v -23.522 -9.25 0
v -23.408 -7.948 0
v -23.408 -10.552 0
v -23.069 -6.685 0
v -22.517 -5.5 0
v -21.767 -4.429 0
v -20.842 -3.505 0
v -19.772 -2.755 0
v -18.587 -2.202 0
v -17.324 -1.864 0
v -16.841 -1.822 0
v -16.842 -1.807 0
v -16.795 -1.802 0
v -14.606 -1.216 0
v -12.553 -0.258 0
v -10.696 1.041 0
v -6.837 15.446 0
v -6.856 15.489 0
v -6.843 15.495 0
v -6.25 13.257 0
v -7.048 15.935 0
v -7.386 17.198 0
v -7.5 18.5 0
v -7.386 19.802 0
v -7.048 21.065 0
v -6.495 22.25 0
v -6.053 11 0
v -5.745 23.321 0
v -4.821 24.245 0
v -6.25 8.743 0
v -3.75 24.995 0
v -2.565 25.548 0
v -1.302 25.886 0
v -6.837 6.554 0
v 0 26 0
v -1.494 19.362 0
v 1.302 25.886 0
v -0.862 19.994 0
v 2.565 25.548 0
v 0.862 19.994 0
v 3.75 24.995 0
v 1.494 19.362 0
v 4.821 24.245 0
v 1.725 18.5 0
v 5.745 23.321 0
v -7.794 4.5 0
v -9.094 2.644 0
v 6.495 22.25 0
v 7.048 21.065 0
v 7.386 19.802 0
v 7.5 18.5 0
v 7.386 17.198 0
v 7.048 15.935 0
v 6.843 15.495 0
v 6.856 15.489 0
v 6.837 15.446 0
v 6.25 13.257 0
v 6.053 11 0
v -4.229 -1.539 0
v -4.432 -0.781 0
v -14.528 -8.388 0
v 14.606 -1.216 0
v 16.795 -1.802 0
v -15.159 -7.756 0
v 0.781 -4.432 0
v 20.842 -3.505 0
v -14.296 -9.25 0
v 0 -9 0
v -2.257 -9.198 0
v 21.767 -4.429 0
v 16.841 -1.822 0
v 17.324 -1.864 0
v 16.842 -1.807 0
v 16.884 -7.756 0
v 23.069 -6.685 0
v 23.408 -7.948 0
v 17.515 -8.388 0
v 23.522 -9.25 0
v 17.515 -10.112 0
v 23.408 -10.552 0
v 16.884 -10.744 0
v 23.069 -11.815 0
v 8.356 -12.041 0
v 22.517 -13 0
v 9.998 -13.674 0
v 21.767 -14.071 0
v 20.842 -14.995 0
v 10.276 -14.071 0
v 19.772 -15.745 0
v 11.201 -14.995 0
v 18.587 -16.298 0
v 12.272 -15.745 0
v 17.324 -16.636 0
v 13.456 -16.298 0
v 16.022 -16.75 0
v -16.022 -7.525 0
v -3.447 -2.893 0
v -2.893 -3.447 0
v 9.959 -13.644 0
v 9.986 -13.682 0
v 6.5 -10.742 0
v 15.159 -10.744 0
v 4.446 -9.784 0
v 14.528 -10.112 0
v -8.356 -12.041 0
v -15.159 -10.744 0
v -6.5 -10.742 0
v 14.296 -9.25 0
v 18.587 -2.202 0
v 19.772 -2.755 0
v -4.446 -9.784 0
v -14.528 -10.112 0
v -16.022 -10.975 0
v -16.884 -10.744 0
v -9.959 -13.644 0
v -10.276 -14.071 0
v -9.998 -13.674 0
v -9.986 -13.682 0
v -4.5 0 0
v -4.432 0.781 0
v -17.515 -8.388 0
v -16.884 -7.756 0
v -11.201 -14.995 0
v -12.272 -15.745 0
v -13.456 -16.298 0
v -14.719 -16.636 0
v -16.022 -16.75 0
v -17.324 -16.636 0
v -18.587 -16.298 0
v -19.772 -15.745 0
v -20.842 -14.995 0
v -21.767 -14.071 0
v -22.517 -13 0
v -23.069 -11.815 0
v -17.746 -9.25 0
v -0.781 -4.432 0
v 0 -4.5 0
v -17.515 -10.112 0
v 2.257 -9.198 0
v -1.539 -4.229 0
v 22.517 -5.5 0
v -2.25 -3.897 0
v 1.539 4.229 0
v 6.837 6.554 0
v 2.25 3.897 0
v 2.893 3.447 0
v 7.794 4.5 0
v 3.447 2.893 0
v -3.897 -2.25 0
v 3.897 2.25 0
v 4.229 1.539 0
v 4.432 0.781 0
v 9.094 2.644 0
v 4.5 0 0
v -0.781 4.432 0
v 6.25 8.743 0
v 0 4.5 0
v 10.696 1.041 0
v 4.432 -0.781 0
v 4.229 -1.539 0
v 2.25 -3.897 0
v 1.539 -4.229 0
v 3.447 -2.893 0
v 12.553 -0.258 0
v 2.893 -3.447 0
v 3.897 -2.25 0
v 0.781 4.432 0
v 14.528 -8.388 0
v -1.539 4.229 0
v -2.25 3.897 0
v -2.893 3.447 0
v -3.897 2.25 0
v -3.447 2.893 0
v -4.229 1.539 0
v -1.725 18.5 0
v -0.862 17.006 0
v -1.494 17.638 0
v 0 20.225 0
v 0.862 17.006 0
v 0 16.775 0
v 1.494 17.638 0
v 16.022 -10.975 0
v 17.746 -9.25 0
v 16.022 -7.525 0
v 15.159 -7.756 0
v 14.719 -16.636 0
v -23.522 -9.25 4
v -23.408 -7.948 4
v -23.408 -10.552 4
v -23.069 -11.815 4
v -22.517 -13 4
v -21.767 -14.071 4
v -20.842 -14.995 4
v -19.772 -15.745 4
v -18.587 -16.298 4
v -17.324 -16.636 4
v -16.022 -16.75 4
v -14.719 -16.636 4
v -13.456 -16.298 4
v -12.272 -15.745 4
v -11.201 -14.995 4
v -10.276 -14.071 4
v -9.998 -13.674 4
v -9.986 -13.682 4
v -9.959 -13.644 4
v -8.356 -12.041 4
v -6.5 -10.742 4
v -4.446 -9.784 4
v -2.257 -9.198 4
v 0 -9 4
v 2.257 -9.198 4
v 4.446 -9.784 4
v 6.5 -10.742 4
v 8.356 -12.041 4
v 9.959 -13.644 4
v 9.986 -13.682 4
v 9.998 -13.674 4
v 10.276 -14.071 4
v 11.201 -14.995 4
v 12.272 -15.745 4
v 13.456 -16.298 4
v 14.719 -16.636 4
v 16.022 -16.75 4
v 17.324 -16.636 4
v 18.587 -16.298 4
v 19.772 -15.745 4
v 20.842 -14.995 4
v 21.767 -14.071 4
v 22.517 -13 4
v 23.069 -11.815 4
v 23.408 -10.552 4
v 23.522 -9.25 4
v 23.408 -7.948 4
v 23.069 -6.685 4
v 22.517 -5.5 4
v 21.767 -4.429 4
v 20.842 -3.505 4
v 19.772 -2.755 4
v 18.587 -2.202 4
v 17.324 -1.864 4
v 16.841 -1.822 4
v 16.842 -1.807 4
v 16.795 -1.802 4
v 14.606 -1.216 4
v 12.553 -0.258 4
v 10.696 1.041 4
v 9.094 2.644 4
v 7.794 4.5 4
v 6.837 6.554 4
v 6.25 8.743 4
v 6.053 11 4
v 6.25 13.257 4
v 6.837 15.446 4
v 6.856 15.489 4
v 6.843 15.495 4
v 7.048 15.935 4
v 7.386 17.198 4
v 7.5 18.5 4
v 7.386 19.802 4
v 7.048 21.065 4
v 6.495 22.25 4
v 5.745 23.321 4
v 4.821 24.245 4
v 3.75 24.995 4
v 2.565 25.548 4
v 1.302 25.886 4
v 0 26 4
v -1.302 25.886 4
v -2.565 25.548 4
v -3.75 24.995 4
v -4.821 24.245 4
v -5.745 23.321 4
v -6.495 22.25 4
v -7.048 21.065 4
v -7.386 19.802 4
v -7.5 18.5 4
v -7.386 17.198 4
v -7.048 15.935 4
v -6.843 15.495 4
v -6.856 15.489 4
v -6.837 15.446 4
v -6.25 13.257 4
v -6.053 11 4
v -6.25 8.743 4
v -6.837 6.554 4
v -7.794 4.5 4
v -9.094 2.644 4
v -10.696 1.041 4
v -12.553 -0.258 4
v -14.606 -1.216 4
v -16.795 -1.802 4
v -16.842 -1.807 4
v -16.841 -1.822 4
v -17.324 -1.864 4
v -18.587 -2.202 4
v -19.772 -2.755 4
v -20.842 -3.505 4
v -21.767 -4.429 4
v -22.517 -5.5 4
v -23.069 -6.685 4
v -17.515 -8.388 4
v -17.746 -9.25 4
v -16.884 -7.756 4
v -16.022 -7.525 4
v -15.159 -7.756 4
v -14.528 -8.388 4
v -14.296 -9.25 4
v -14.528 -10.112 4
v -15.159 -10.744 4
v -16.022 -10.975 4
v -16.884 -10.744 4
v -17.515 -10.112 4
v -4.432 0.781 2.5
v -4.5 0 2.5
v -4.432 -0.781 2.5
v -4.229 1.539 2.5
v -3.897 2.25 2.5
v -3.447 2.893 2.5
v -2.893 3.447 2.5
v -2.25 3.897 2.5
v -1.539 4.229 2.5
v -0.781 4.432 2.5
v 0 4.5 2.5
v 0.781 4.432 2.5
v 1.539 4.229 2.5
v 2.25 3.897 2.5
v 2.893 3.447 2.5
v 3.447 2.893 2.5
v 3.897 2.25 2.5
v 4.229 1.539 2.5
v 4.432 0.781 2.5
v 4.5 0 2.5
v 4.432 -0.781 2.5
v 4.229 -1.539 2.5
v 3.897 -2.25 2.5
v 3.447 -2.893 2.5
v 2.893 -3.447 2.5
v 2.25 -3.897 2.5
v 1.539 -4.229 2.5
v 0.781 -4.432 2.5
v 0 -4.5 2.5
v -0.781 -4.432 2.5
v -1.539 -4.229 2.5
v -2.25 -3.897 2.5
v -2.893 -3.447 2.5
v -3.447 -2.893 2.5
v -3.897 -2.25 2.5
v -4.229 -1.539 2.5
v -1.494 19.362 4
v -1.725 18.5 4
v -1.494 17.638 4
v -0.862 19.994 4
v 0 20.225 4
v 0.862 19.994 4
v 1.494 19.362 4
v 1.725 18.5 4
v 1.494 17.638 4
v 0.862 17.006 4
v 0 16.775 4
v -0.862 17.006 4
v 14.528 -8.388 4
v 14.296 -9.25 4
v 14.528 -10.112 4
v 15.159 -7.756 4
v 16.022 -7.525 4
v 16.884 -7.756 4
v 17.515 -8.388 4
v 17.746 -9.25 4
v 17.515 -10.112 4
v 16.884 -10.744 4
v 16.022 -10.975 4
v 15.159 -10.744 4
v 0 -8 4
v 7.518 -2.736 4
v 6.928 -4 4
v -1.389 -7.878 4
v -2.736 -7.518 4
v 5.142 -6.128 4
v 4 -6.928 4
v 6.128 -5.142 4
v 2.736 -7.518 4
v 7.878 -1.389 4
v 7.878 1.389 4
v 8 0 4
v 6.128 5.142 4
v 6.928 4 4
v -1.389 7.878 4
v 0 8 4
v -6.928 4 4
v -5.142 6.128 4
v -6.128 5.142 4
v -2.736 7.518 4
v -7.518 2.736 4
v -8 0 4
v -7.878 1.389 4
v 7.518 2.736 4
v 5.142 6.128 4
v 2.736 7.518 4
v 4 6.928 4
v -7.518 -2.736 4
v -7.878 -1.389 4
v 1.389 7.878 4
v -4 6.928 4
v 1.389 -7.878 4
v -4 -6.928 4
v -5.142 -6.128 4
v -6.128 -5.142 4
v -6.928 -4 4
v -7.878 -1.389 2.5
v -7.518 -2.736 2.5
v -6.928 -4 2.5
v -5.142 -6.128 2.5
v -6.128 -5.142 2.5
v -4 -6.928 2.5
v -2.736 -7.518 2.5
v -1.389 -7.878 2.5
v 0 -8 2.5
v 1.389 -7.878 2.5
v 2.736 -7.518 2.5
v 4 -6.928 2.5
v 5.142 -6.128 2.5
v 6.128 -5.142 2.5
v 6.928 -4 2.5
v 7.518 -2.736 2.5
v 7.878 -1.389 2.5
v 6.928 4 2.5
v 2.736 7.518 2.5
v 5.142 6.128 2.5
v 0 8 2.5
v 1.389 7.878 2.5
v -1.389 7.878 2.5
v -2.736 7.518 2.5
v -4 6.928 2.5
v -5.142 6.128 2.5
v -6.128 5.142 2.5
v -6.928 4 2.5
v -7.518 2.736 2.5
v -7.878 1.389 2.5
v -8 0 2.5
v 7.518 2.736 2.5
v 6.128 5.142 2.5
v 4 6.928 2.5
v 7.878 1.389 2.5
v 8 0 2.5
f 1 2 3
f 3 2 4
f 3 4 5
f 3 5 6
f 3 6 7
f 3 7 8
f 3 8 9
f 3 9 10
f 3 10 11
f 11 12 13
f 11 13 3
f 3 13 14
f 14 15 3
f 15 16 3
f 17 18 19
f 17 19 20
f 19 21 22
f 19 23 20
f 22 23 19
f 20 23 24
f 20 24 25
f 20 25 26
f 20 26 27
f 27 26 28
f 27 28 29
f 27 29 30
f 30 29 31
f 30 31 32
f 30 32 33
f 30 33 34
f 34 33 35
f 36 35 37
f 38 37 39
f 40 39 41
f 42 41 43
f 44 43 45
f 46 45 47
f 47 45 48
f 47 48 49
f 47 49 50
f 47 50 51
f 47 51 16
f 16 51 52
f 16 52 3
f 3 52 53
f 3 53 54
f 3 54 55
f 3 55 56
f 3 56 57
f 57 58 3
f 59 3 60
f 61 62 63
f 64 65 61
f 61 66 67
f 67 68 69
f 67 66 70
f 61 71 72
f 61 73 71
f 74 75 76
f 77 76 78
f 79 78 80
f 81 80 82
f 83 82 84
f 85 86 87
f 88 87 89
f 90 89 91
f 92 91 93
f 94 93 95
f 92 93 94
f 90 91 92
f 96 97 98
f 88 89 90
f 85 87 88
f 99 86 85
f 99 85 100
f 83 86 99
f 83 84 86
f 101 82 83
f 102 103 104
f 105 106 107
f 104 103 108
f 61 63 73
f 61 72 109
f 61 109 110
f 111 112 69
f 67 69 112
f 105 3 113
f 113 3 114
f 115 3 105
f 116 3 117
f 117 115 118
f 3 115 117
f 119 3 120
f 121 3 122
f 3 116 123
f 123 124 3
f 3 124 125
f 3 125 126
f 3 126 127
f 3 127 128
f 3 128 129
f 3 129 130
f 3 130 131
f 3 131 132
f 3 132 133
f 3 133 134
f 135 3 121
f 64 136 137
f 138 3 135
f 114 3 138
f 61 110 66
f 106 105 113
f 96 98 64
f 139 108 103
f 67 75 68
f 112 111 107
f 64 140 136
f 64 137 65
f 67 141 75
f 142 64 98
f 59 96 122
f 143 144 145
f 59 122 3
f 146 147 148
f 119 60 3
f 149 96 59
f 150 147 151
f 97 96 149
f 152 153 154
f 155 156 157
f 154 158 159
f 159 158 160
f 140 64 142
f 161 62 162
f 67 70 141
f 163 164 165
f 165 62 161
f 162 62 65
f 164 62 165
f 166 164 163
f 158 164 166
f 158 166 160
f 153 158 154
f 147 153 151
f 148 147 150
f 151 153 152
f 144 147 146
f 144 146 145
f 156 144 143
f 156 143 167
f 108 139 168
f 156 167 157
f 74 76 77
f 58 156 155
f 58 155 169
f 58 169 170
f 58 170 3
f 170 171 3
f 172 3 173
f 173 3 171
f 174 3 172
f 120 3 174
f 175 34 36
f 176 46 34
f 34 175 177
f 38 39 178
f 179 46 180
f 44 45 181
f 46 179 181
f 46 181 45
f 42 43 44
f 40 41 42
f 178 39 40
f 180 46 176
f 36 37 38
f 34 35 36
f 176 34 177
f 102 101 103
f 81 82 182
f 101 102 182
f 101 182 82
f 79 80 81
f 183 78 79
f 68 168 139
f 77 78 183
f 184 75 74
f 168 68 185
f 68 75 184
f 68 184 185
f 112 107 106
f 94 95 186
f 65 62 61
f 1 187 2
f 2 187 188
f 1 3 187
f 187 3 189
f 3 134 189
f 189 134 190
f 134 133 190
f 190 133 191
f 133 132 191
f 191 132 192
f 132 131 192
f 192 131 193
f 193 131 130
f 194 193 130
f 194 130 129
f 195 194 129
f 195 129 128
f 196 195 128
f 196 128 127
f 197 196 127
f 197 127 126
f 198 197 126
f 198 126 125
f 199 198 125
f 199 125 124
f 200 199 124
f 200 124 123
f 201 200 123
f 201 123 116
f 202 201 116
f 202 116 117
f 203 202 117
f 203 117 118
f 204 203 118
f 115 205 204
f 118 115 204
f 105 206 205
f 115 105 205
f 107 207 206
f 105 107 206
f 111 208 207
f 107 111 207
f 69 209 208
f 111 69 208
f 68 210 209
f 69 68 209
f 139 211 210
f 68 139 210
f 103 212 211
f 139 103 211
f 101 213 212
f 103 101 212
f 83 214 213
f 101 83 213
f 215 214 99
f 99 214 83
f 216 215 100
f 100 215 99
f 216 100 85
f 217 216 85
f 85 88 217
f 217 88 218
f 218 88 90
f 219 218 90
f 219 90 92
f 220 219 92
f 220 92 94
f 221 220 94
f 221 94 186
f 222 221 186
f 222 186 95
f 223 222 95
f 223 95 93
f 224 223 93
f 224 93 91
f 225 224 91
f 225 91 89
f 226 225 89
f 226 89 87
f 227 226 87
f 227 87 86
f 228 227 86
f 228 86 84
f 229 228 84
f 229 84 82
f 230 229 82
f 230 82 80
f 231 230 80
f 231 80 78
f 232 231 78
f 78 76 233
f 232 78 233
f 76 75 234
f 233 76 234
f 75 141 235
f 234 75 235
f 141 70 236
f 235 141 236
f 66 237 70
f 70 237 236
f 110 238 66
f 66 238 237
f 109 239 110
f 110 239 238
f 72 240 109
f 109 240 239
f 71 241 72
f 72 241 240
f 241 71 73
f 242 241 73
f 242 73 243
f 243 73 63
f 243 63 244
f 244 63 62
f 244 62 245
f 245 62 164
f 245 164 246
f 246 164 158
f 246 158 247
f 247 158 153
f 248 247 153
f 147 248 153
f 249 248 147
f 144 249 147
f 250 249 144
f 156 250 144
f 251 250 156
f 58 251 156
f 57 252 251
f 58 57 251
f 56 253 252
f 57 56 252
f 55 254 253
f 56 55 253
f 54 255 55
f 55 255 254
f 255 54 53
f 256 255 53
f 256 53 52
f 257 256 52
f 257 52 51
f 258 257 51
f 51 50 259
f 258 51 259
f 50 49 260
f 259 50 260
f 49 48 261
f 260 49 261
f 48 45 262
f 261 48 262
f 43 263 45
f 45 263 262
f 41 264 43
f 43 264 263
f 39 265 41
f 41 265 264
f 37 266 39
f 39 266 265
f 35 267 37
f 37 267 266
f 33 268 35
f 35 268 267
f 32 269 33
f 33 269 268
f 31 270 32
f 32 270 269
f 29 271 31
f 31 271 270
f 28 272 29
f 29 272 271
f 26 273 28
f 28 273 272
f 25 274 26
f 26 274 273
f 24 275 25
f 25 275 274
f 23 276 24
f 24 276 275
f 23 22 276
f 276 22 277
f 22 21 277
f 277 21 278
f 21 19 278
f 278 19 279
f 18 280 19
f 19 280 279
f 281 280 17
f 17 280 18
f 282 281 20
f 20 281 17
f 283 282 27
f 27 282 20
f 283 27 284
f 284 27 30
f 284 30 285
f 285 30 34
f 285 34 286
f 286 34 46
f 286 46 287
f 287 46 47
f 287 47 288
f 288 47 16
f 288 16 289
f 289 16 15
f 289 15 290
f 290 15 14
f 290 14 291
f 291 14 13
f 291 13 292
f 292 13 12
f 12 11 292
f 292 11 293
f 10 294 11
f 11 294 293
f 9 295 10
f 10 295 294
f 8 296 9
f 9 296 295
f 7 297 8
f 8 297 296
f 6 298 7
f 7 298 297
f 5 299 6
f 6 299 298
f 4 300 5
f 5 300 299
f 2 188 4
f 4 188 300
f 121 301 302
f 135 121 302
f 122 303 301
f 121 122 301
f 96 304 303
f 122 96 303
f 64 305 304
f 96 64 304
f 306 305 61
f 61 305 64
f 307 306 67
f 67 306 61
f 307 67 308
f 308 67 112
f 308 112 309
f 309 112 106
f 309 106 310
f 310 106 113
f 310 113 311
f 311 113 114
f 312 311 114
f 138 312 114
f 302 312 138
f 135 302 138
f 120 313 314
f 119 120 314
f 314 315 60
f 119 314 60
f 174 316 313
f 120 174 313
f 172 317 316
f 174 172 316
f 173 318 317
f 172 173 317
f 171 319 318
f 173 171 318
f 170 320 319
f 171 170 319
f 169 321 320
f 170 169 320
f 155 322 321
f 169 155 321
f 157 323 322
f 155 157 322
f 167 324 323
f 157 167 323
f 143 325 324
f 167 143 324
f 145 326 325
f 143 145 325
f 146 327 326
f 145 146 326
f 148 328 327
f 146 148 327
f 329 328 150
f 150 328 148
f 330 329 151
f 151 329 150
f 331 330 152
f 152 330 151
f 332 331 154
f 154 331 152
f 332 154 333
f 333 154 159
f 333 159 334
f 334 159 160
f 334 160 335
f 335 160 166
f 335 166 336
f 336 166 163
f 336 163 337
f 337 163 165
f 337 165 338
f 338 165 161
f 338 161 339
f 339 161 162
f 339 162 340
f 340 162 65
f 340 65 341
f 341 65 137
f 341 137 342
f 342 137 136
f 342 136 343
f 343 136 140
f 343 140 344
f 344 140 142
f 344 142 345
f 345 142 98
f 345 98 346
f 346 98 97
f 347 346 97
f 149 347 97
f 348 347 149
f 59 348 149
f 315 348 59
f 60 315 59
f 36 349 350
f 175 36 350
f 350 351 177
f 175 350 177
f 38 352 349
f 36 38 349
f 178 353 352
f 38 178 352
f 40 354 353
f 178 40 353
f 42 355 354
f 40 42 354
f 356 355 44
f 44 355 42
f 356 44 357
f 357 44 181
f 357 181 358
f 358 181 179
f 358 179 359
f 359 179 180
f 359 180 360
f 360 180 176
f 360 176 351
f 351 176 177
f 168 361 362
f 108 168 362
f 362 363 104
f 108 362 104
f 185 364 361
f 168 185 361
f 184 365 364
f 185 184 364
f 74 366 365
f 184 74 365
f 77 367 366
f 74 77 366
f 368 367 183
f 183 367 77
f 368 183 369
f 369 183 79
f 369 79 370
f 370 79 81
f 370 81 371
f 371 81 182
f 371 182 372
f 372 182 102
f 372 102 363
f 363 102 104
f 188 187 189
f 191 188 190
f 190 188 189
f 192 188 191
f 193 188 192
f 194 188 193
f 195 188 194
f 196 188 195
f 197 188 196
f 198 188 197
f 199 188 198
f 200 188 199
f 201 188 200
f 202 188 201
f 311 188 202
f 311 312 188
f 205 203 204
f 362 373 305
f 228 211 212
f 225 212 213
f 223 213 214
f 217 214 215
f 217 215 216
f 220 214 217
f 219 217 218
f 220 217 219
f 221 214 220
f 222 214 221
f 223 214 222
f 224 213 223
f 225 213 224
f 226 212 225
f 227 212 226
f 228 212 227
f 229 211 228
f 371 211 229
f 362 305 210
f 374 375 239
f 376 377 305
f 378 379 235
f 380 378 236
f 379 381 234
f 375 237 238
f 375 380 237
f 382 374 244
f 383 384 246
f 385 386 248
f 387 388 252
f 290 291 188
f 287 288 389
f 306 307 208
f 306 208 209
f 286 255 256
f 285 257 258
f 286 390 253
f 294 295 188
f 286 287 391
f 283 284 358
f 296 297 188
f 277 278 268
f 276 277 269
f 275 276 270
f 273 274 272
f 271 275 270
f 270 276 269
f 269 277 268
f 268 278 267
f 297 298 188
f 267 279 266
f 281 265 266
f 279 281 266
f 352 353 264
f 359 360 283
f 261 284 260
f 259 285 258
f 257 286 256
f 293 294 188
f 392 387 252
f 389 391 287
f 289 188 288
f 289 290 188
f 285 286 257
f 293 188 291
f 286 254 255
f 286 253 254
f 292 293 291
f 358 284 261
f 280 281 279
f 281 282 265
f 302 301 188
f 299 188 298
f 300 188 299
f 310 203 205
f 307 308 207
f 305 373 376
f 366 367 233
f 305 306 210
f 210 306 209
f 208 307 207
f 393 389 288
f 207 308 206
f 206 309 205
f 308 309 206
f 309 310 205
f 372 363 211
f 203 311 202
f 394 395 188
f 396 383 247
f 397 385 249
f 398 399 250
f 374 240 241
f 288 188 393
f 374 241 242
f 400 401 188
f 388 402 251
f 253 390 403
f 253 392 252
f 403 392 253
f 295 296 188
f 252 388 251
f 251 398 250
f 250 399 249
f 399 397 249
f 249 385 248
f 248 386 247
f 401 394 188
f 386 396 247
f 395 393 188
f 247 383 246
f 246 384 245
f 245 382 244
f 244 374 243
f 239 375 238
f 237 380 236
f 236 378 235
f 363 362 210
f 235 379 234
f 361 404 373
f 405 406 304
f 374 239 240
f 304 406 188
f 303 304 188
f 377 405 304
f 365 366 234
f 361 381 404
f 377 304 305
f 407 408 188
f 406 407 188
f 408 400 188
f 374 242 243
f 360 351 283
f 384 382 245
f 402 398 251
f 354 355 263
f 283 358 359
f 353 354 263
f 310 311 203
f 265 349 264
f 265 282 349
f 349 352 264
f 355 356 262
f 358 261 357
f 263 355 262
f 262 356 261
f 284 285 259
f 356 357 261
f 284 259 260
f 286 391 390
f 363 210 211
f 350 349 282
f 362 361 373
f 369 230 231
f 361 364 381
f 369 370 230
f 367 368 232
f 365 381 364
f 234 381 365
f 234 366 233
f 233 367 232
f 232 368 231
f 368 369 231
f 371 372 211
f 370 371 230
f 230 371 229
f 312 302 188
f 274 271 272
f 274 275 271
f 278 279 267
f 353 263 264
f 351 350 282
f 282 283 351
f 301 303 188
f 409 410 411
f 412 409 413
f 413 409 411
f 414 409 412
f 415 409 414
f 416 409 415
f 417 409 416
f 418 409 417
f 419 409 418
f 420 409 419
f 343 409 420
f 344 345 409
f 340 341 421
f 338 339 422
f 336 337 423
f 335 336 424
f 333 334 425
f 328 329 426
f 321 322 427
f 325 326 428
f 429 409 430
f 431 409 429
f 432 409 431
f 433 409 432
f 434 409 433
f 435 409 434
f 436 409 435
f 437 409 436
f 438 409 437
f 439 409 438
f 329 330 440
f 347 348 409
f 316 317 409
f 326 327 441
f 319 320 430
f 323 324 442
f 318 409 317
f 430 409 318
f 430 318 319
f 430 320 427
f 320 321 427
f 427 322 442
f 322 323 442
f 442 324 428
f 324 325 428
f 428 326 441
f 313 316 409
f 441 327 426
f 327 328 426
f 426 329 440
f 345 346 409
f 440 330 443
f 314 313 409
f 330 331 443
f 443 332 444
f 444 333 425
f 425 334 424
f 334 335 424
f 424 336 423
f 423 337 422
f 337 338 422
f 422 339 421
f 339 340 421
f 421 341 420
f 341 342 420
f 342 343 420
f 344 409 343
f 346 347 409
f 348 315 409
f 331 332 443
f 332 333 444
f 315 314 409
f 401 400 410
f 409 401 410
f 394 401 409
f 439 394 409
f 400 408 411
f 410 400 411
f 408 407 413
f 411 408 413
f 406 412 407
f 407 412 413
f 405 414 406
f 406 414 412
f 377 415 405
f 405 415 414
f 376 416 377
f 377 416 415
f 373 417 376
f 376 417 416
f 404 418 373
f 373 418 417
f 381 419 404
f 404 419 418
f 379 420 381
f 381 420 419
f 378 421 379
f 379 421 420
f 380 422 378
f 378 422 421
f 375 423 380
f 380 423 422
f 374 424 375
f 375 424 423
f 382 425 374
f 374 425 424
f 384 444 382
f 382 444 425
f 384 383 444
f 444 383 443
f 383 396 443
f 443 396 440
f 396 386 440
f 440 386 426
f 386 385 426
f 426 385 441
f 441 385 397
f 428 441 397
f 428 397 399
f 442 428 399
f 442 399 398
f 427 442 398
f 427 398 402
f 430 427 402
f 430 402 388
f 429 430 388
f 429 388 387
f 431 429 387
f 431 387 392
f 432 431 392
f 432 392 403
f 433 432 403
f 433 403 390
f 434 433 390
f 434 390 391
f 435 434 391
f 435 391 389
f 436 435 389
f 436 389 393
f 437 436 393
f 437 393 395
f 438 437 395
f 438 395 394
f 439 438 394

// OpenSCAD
// file: configuration.scad
// Increase this if your slicer or printer make holes too tight.
extra_radius = 0.1;

// OD = outside diameter, corner to corner.
m3_nut_od = 6.1;
m3_nut_radius = m3_nut_od/2 + 0.2 + extra_radius;

// Major diameter of metric 3mm thread.
m3_major = 2.85;
m3_radius = m3_major/2 + extra_radius;
m3_wide_radius = m3_major/2 + extra_radius + 0.2;

// OD = outside diameter, corner to corner.
m5_nut_od = 8.1;
m5_nut_radius = m5_nut_od/2 + 0.2 + extra_radius;

// Major diameter of metric 5mm thread.
m5_major = 4.85;
m5_radius = m5_major/2 + extra_radius;
m5_wide_radius = m5_major/2 + extra_radius + 0.2;

// NEMA17 stepper motors.
motor_shaft_diameter = 5;
motor_shaft_radius = motor_shaft_diameter/2 + extra_radius;

// Frame brackets. M3x8mm screws work best with 3.6 mm brackets.
thickness = 3.6;

// OpenBeam or Misumi. Currently only 15x15 mm, but there is a plan
// to make models more parametric and allow 20x20 mm in the future.
extrusion = 15;
// main file
include <configuration.scad>;

separation = 44;  // Distance between ball joint mounting faces.
offset = 22;  // Same as DELTA_EFFECTOR_OFFSET in Marlin.
mount_radius = 18.5;  // Hotend mounting screws, standard would be 25mm.
jhead_od_radius = 8;  // Hole for the hotend (J-Head diameter is 16mm).
jhead_id_radius = 6;
height = 4;
jhead_height=2.5;


module mount_cap() {
  difference() {
    union() {
		cylinder(r=offset-5, h=height, center=true, $fn=36);
		
		for (a = [0:120:359]) rotate([0, 0, a]) {
      	translate([0, mount_radius, 0])	cylinder(r=7.5, h=height, center=true, $fn=36);
    		}

	}
		
    translate([0, 0, -height/2])cylinder(r=4.5, h=height, $fn=36);
    translate([0, 0, -height/2+jhead_height])cylinder(r=jhead_od_radius, h=jhead_height, $fn=36);

    for (a = [0:120:359]) rotate([0, 0, a]) {
      translate([0, mount_radius, height/2])	cylinder(r=m3_wide_radius, h=2*height, center=true, $fn=12);
    }

	
    for (a = [60:120:359]) rotate([0, 0, a]) {
      translate([0, offset, height/2])	cylinder(r=13, h=2*height, center=true, $fn=36);
    }

  }
}

translate([0, 0, height/2]) mount_cap();
